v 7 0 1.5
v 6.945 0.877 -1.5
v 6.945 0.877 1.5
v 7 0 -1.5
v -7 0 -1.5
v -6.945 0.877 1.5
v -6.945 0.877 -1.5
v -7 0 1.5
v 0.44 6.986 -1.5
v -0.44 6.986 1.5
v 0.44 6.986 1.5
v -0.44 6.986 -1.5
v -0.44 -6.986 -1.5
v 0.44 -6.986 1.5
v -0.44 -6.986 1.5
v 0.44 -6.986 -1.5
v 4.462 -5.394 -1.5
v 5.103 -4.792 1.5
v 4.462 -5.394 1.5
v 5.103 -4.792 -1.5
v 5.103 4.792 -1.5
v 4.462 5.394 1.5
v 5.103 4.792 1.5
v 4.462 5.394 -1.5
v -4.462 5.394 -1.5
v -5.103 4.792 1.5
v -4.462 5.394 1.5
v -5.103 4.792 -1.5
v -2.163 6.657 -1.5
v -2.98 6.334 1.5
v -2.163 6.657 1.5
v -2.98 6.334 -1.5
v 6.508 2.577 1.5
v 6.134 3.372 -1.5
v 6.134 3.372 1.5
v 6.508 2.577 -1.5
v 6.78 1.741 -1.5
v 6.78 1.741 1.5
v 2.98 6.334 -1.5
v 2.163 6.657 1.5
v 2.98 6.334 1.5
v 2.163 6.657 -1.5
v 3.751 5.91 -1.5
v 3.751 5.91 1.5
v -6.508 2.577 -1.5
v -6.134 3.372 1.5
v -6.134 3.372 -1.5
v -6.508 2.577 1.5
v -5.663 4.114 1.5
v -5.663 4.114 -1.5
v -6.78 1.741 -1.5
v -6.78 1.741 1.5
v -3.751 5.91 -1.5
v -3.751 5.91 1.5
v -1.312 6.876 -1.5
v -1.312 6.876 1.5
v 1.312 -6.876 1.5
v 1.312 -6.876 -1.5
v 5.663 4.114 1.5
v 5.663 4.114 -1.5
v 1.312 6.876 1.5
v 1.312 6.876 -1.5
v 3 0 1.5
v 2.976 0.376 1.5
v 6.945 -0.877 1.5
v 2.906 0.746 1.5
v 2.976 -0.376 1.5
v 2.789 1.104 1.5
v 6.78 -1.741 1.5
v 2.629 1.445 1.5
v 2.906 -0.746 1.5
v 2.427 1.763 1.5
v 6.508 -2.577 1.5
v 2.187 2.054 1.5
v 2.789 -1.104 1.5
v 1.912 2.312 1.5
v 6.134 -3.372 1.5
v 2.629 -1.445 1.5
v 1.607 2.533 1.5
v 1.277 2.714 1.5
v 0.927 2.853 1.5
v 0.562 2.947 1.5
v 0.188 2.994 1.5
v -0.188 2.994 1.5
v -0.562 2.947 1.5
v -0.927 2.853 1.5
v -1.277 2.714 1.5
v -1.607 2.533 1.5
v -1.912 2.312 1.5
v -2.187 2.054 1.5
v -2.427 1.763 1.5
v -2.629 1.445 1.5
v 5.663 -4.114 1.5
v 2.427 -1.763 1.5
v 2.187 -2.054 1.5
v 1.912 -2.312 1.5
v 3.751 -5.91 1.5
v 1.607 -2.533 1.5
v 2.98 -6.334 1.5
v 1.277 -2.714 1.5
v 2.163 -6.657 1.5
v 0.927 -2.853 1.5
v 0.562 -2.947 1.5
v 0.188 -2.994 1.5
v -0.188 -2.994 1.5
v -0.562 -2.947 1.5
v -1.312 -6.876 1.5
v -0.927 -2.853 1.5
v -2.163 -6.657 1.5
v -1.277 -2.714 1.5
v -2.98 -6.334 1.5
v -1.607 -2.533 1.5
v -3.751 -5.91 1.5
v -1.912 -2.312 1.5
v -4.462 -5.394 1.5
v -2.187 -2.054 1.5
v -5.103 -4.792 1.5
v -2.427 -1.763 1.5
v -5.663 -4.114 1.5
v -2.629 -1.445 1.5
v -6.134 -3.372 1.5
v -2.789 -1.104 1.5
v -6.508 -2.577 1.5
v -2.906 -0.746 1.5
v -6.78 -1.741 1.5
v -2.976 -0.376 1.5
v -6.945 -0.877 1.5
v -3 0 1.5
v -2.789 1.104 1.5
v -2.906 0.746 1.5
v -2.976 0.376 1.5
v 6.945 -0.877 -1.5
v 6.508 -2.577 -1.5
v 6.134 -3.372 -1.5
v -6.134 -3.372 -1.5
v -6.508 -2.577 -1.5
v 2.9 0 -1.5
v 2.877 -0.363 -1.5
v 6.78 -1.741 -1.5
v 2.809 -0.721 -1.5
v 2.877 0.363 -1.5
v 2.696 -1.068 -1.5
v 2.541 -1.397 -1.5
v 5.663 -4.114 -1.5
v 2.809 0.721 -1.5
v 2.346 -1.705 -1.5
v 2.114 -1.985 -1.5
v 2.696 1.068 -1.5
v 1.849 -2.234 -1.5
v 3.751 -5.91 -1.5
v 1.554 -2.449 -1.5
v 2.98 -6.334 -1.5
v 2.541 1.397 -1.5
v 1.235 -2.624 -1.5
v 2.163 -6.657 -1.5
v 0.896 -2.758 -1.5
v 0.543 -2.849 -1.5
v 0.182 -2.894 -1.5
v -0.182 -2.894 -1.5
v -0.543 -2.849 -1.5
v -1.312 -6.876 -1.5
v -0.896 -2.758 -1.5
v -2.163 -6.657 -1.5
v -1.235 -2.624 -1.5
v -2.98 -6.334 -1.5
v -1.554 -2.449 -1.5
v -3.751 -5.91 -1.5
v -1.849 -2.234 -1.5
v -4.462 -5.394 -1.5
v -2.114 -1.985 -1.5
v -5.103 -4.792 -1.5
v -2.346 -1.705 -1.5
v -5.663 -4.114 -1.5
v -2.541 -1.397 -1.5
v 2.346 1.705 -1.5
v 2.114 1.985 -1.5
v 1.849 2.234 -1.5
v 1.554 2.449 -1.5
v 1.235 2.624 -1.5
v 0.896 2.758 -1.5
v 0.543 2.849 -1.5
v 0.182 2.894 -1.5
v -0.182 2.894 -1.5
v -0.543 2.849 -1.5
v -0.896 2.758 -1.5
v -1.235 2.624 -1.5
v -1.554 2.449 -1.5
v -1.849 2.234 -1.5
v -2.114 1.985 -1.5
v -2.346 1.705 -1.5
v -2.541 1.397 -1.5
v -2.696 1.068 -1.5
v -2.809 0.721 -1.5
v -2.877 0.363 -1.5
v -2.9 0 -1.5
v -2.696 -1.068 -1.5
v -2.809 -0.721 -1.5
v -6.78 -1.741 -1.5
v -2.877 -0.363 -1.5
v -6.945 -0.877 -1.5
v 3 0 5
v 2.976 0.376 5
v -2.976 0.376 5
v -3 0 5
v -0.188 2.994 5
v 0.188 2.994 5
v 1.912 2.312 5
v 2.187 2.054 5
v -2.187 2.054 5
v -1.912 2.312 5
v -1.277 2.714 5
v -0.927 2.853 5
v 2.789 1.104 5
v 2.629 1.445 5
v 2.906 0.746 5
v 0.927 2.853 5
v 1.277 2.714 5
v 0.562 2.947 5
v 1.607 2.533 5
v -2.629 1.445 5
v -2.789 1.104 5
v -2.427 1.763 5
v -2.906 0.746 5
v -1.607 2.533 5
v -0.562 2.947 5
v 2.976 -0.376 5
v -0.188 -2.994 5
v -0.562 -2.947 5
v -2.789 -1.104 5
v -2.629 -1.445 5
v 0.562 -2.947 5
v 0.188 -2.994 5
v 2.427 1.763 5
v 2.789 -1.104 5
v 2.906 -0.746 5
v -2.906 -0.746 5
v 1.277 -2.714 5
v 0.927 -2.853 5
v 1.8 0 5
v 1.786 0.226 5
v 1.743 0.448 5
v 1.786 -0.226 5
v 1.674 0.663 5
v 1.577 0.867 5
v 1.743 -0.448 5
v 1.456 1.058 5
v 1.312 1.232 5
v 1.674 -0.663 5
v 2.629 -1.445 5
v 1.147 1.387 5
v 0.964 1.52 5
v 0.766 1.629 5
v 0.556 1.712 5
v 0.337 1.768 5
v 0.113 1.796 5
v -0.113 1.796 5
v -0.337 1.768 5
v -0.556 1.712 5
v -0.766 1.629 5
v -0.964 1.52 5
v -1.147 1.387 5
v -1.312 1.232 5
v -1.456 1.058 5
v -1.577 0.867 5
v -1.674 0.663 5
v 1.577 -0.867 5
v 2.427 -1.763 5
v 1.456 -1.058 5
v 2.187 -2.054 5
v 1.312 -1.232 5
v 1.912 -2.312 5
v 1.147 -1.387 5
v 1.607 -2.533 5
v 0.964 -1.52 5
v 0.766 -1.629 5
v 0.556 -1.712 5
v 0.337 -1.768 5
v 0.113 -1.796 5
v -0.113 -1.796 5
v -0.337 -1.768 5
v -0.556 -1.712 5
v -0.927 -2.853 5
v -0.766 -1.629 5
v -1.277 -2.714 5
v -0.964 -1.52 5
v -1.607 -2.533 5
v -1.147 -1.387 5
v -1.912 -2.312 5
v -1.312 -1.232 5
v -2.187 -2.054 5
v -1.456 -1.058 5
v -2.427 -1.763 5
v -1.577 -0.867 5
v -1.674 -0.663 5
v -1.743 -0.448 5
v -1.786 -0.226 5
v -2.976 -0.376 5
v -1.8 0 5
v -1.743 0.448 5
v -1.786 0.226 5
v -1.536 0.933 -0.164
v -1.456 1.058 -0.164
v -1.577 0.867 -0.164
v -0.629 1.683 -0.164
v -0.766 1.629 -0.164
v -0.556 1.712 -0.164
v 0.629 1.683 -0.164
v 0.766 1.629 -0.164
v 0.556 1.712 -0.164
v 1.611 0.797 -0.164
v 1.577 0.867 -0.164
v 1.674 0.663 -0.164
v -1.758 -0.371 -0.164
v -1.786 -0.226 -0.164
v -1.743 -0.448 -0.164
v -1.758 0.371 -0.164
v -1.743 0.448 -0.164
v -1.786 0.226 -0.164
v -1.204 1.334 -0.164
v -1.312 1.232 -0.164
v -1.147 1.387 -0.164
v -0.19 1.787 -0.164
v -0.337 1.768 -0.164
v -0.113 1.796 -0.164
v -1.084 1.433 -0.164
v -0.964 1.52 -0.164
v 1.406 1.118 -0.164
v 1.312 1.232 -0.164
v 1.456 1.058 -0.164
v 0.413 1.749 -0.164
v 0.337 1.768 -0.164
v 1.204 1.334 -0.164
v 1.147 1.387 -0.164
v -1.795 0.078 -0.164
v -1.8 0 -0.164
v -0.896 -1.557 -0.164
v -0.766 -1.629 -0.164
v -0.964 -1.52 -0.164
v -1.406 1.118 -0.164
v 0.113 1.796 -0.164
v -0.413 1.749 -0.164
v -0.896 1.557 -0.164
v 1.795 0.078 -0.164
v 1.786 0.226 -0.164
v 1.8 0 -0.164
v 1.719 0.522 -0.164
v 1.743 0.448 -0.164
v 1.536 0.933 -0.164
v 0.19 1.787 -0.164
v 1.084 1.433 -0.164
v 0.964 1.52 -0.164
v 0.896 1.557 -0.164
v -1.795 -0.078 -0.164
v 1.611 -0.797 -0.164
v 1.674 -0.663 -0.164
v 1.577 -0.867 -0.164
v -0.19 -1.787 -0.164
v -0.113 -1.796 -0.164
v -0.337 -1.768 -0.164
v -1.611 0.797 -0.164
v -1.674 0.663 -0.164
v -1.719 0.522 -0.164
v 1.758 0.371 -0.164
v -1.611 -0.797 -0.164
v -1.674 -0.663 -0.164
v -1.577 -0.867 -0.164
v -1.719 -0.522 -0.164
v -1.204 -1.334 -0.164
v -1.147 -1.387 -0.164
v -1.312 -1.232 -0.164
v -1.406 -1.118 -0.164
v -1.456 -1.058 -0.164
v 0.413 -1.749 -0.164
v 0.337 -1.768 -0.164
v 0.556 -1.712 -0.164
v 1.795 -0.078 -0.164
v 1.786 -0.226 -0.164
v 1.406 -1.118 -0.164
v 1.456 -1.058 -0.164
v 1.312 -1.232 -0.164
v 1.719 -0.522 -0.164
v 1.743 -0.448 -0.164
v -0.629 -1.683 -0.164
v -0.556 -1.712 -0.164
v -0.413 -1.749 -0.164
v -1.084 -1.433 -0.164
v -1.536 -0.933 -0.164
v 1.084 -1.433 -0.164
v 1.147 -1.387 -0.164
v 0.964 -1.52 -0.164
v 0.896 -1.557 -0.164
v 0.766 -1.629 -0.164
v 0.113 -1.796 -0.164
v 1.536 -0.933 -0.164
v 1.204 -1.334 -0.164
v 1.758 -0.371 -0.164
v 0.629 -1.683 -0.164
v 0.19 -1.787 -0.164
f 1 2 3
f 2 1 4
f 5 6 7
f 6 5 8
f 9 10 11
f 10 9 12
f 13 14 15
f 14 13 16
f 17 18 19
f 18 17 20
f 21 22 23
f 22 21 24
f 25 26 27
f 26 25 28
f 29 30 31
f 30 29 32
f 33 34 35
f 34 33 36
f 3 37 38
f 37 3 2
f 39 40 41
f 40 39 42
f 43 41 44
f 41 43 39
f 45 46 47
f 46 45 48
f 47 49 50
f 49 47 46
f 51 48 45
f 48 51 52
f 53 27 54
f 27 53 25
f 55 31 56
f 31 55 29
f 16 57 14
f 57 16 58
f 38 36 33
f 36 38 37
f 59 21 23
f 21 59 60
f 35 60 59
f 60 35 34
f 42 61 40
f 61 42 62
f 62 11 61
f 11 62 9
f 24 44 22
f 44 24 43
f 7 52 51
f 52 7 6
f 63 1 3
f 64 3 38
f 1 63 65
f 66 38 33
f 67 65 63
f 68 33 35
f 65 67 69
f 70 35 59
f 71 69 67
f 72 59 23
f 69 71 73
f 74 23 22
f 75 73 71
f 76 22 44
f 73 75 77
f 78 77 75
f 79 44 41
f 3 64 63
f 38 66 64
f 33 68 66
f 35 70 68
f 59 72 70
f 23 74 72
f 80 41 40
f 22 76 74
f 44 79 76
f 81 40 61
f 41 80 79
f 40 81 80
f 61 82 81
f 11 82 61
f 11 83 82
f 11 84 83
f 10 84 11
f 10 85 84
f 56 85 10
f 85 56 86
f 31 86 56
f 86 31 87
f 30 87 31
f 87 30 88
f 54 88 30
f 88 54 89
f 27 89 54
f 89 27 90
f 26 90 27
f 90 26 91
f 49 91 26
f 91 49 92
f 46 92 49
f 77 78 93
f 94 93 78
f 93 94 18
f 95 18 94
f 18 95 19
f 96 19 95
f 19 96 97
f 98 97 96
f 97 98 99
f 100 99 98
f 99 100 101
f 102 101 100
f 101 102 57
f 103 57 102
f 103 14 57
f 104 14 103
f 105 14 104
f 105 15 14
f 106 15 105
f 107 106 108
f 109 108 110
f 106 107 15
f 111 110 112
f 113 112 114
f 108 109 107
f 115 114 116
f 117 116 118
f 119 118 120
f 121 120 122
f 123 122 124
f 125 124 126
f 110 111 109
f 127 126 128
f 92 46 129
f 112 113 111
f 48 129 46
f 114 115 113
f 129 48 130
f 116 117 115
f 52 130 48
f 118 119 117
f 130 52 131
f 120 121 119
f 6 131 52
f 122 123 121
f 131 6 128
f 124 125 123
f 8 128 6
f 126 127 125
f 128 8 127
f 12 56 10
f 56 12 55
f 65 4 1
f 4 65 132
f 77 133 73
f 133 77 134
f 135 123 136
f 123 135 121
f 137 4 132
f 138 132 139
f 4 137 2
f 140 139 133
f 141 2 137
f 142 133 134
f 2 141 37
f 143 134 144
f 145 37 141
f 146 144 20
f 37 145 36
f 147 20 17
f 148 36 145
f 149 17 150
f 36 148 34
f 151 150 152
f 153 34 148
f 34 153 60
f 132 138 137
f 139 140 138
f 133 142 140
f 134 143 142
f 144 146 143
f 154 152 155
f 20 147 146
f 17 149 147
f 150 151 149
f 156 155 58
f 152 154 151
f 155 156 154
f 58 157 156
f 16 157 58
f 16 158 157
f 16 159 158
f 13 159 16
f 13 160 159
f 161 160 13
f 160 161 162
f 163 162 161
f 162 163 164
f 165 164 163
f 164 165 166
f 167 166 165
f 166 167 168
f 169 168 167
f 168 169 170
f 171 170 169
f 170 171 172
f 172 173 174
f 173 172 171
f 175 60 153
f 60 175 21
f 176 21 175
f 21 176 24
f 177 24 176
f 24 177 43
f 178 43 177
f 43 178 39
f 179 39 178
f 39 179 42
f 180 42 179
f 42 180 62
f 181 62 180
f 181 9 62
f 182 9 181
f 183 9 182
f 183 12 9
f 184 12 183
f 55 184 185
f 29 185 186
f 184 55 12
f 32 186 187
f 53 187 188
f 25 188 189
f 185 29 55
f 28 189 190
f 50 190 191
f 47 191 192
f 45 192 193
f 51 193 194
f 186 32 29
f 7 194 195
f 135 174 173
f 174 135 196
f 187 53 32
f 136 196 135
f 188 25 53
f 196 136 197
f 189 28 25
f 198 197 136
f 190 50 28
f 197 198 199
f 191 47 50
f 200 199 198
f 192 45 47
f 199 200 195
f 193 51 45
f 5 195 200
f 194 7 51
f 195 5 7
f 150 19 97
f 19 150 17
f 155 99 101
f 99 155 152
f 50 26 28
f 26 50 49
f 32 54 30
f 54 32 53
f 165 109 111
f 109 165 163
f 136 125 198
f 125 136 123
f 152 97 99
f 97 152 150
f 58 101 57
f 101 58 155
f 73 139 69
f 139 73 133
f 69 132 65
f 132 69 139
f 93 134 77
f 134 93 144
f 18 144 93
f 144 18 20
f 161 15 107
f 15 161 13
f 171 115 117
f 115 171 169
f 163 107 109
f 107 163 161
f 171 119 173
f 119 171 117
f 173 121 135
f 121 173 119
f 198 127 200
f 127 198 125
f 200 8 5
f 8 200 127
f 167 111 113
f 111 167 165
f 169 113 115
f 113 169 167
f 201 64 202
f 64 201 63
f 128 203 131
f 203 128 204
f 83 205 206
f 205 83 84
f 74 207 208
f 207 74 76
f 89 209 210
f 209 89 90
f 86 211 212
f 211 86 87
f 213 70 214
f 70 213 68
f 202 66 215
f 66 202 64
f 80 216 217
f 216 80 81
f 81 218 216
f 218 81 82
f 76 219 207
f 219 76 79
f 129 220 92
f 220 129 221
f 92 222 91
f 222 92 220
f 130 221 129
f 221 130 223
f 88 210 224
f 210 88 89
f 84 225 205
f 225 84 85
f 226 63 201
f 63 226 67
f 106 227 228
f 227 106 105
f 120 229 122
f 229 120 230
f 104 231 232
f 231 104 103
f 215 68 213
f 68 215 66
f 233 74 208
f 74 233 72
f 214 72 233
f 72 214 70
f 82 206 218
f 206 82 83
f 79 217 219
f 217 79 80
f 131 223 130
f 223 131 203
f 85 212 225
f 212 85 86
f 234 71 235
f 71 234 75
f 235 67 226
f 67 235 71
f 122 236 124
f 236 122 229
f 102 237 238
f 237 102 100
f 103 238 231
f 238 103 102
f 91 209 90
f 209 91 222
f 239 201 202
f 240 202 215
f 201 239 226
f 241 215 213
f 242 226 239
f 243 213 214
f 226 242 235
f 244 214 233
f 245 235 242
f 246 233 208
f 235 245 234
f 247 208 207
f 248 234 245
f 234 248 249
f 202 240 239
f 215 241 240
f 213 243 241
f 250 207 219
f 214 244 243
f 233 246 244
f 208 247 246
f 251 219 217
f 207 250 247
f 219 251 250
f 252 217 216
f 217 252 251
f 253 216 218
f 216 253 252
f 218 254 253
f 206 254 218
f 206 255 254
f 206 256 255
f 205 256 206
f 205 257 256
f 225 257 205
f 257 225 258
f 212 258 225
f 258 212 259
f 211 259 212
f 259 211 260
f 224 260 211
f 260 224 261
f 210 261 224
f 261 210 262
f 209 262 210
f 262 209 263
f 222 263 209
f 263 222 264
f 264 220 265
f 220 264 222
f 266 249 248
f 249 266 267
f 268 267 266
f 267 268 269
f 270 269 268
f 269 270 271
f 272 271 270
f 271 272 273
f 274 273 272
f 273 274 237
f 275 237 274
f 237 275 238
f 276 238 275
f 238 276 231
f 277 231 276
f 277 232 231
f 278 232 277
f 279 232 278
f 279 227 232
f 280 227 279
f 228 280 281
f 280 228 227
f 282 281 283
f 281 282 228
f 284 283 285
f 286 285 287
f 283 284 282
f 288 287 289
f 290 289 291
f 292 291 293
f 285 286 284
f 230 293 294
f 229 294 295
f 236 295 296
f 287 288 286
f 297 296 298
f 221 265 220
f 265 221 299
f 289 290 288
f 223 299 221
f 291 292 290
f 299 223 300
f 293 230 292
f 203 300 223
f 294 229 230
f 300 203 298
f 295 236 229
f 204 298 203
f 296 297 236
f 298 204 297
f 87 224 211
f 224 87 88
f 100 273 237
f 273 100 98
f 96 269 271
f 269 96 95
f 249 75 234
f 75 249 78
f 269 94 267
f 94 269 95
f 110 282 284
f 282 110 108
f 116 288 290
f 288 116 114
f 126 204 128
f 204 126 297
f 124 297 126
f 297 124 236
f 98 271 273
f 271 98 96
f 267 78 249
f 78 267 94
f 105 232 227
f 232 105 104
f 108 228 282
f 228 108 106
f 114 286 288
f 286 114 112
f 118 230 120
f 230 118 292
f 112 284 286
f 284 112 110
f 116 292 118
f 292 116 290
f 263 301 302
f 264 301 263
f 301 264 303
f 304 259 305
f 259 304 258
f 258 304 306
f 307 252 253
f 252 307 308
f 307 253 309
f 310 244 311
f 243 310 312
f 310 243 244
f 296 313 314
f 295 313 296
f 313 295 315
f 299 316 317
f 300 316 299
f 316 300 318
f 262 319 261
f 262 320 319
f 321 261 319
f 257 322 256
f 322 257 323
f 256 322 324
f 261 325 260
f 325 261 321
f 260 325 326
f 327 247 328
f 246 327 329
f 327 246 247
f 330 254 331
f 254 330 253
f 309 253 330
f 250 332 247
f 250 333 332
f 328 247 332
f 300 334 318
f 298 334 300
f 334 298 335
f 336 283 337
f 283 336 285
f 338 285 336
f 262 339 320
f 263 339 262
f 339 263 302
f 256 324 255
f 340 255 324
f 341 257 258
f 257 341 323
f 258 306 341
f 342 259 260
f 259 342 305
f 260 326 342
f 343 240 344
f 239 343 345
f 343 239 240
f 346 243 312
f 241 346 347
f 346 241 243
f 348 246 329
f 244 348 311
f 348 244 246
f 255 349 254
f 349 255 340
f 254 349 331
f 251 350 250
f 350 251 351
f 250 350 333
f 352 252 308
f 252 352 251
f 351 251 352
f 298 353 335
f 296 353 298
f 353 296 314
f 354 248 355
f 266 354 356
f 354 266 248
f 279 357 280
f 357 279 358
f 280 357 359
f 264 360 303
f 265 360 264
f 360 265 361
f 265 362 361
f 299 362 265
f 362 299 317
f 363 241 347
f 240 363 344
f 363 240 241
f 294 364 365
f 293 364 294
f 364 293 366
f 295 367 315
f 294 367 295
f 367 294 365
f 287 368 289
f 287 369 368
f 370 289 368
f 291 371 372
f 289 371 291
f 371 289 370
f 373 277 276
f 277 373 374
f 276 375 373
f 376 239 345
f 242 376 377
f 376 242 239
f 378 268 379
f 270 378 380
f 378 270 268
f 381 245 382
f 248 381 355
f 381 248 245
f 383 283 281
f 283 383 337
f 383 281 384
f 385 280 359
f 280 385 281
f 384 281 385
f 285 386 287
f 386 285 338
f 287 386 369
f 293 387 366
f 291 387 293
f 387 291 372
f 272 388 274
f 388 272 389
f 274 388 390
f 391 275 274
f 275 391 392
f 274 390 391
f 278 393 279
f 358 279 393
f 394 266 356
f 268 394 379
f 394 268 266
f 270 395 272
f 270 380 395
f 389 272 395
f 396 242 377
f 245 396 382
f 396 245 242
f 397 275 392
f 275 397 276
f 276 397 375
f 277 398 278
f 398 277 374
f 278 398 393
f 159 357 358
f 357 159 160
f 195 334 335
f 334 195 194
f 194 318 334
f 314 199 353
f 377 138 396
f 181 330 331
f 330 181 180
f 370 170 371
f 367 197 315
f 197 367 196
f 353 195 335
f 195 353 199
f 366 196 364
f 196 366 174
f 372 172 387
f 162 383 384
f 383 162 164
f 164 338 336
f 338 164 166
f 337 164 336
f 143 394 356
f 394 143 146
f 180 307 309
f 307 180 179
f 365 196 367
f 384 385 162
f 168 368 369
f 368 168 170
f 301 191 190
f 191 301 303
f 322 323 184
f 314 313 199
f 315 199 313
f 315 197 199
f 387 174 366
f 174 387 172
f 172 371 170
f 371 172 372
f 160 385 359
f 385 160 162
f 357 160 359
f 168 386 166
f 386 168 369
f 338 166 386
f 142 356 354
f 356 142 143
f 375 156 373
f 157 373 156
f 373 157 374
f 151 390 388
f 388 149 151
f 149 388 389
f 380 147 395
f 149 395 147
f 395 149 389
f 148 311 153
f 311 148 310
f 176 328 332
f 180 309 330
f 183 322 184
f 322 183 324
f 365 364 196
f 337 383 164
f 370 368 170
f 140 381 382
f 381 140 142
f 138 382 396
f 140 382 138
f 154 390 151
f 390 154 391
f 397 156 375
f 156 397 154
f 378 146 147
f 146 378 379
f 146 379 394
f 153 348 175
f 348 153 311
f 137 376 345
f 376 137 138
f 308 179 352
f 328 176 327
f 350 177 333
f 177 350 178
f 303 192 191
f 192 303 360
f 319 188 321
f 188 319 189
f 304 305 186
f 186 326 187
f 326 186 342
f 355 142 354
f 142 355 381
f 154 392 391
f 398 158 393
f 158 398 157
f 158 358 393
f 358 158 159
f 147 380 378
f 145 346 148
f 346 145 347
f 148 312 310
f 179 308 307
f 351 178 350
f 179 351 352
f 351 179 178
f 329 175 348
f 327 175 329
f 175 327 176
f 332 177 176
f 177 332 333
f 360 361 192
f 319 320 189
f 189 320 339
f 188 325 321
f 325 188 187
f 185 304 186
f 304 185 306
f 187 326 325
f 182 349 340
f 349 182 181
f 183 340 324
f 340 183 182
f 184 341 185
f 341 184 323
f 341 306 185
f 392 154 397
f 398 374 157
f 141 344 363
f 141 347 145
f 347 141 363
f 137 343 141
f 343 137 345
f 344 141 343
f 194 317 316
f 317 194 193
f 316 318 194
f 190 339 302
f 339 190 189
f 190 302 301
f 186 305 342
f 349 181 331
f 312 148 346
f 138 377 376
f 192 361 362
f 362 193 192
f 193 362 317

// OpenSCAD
$fn = 50;


difference() {
	union() {
		translate(v = [0, 0, -1.5000000000]) {
			cylinder(h = 3, r = 7.0000000000);
		}
		translate(v = [0, 0, -1.5000000000]) {
			cylinder(h = 6.5000000000, r = 3.0000000000);
		}
	}
	union() {
		translate(v = [0, 0, -1.5000000000]) {
			rotate(a = [0, 180, 0]) {
				difference() {
					union() {
						translate(v = [0, 0, -6.5000000000]) {
							cylinder(h = 6.5000000000, r = 1.5000000000);
						}
						translate(v = [0, 0, -6.5000000000]) {
							cylinder(h = 6.5000000000, r = 1.8000000000);
						}
						translate(v = [0, 0, -1.7000000000]) {
							cylinder(h = 1.7000000000, r1 = 1.5000000000, r2 = 2.9000000000);
						}
						translate(v = [0, 0, -6.5000000000]) {
							cylinder(h = 6.5000000000, r = 1.5000000000);
						}
					}
					union();
				}
			}
		}
		translate(v = [0, 0, -50.0000000000]) {
			cylinder(h = 100, r = 1.5000000000);
		}
	}
}
